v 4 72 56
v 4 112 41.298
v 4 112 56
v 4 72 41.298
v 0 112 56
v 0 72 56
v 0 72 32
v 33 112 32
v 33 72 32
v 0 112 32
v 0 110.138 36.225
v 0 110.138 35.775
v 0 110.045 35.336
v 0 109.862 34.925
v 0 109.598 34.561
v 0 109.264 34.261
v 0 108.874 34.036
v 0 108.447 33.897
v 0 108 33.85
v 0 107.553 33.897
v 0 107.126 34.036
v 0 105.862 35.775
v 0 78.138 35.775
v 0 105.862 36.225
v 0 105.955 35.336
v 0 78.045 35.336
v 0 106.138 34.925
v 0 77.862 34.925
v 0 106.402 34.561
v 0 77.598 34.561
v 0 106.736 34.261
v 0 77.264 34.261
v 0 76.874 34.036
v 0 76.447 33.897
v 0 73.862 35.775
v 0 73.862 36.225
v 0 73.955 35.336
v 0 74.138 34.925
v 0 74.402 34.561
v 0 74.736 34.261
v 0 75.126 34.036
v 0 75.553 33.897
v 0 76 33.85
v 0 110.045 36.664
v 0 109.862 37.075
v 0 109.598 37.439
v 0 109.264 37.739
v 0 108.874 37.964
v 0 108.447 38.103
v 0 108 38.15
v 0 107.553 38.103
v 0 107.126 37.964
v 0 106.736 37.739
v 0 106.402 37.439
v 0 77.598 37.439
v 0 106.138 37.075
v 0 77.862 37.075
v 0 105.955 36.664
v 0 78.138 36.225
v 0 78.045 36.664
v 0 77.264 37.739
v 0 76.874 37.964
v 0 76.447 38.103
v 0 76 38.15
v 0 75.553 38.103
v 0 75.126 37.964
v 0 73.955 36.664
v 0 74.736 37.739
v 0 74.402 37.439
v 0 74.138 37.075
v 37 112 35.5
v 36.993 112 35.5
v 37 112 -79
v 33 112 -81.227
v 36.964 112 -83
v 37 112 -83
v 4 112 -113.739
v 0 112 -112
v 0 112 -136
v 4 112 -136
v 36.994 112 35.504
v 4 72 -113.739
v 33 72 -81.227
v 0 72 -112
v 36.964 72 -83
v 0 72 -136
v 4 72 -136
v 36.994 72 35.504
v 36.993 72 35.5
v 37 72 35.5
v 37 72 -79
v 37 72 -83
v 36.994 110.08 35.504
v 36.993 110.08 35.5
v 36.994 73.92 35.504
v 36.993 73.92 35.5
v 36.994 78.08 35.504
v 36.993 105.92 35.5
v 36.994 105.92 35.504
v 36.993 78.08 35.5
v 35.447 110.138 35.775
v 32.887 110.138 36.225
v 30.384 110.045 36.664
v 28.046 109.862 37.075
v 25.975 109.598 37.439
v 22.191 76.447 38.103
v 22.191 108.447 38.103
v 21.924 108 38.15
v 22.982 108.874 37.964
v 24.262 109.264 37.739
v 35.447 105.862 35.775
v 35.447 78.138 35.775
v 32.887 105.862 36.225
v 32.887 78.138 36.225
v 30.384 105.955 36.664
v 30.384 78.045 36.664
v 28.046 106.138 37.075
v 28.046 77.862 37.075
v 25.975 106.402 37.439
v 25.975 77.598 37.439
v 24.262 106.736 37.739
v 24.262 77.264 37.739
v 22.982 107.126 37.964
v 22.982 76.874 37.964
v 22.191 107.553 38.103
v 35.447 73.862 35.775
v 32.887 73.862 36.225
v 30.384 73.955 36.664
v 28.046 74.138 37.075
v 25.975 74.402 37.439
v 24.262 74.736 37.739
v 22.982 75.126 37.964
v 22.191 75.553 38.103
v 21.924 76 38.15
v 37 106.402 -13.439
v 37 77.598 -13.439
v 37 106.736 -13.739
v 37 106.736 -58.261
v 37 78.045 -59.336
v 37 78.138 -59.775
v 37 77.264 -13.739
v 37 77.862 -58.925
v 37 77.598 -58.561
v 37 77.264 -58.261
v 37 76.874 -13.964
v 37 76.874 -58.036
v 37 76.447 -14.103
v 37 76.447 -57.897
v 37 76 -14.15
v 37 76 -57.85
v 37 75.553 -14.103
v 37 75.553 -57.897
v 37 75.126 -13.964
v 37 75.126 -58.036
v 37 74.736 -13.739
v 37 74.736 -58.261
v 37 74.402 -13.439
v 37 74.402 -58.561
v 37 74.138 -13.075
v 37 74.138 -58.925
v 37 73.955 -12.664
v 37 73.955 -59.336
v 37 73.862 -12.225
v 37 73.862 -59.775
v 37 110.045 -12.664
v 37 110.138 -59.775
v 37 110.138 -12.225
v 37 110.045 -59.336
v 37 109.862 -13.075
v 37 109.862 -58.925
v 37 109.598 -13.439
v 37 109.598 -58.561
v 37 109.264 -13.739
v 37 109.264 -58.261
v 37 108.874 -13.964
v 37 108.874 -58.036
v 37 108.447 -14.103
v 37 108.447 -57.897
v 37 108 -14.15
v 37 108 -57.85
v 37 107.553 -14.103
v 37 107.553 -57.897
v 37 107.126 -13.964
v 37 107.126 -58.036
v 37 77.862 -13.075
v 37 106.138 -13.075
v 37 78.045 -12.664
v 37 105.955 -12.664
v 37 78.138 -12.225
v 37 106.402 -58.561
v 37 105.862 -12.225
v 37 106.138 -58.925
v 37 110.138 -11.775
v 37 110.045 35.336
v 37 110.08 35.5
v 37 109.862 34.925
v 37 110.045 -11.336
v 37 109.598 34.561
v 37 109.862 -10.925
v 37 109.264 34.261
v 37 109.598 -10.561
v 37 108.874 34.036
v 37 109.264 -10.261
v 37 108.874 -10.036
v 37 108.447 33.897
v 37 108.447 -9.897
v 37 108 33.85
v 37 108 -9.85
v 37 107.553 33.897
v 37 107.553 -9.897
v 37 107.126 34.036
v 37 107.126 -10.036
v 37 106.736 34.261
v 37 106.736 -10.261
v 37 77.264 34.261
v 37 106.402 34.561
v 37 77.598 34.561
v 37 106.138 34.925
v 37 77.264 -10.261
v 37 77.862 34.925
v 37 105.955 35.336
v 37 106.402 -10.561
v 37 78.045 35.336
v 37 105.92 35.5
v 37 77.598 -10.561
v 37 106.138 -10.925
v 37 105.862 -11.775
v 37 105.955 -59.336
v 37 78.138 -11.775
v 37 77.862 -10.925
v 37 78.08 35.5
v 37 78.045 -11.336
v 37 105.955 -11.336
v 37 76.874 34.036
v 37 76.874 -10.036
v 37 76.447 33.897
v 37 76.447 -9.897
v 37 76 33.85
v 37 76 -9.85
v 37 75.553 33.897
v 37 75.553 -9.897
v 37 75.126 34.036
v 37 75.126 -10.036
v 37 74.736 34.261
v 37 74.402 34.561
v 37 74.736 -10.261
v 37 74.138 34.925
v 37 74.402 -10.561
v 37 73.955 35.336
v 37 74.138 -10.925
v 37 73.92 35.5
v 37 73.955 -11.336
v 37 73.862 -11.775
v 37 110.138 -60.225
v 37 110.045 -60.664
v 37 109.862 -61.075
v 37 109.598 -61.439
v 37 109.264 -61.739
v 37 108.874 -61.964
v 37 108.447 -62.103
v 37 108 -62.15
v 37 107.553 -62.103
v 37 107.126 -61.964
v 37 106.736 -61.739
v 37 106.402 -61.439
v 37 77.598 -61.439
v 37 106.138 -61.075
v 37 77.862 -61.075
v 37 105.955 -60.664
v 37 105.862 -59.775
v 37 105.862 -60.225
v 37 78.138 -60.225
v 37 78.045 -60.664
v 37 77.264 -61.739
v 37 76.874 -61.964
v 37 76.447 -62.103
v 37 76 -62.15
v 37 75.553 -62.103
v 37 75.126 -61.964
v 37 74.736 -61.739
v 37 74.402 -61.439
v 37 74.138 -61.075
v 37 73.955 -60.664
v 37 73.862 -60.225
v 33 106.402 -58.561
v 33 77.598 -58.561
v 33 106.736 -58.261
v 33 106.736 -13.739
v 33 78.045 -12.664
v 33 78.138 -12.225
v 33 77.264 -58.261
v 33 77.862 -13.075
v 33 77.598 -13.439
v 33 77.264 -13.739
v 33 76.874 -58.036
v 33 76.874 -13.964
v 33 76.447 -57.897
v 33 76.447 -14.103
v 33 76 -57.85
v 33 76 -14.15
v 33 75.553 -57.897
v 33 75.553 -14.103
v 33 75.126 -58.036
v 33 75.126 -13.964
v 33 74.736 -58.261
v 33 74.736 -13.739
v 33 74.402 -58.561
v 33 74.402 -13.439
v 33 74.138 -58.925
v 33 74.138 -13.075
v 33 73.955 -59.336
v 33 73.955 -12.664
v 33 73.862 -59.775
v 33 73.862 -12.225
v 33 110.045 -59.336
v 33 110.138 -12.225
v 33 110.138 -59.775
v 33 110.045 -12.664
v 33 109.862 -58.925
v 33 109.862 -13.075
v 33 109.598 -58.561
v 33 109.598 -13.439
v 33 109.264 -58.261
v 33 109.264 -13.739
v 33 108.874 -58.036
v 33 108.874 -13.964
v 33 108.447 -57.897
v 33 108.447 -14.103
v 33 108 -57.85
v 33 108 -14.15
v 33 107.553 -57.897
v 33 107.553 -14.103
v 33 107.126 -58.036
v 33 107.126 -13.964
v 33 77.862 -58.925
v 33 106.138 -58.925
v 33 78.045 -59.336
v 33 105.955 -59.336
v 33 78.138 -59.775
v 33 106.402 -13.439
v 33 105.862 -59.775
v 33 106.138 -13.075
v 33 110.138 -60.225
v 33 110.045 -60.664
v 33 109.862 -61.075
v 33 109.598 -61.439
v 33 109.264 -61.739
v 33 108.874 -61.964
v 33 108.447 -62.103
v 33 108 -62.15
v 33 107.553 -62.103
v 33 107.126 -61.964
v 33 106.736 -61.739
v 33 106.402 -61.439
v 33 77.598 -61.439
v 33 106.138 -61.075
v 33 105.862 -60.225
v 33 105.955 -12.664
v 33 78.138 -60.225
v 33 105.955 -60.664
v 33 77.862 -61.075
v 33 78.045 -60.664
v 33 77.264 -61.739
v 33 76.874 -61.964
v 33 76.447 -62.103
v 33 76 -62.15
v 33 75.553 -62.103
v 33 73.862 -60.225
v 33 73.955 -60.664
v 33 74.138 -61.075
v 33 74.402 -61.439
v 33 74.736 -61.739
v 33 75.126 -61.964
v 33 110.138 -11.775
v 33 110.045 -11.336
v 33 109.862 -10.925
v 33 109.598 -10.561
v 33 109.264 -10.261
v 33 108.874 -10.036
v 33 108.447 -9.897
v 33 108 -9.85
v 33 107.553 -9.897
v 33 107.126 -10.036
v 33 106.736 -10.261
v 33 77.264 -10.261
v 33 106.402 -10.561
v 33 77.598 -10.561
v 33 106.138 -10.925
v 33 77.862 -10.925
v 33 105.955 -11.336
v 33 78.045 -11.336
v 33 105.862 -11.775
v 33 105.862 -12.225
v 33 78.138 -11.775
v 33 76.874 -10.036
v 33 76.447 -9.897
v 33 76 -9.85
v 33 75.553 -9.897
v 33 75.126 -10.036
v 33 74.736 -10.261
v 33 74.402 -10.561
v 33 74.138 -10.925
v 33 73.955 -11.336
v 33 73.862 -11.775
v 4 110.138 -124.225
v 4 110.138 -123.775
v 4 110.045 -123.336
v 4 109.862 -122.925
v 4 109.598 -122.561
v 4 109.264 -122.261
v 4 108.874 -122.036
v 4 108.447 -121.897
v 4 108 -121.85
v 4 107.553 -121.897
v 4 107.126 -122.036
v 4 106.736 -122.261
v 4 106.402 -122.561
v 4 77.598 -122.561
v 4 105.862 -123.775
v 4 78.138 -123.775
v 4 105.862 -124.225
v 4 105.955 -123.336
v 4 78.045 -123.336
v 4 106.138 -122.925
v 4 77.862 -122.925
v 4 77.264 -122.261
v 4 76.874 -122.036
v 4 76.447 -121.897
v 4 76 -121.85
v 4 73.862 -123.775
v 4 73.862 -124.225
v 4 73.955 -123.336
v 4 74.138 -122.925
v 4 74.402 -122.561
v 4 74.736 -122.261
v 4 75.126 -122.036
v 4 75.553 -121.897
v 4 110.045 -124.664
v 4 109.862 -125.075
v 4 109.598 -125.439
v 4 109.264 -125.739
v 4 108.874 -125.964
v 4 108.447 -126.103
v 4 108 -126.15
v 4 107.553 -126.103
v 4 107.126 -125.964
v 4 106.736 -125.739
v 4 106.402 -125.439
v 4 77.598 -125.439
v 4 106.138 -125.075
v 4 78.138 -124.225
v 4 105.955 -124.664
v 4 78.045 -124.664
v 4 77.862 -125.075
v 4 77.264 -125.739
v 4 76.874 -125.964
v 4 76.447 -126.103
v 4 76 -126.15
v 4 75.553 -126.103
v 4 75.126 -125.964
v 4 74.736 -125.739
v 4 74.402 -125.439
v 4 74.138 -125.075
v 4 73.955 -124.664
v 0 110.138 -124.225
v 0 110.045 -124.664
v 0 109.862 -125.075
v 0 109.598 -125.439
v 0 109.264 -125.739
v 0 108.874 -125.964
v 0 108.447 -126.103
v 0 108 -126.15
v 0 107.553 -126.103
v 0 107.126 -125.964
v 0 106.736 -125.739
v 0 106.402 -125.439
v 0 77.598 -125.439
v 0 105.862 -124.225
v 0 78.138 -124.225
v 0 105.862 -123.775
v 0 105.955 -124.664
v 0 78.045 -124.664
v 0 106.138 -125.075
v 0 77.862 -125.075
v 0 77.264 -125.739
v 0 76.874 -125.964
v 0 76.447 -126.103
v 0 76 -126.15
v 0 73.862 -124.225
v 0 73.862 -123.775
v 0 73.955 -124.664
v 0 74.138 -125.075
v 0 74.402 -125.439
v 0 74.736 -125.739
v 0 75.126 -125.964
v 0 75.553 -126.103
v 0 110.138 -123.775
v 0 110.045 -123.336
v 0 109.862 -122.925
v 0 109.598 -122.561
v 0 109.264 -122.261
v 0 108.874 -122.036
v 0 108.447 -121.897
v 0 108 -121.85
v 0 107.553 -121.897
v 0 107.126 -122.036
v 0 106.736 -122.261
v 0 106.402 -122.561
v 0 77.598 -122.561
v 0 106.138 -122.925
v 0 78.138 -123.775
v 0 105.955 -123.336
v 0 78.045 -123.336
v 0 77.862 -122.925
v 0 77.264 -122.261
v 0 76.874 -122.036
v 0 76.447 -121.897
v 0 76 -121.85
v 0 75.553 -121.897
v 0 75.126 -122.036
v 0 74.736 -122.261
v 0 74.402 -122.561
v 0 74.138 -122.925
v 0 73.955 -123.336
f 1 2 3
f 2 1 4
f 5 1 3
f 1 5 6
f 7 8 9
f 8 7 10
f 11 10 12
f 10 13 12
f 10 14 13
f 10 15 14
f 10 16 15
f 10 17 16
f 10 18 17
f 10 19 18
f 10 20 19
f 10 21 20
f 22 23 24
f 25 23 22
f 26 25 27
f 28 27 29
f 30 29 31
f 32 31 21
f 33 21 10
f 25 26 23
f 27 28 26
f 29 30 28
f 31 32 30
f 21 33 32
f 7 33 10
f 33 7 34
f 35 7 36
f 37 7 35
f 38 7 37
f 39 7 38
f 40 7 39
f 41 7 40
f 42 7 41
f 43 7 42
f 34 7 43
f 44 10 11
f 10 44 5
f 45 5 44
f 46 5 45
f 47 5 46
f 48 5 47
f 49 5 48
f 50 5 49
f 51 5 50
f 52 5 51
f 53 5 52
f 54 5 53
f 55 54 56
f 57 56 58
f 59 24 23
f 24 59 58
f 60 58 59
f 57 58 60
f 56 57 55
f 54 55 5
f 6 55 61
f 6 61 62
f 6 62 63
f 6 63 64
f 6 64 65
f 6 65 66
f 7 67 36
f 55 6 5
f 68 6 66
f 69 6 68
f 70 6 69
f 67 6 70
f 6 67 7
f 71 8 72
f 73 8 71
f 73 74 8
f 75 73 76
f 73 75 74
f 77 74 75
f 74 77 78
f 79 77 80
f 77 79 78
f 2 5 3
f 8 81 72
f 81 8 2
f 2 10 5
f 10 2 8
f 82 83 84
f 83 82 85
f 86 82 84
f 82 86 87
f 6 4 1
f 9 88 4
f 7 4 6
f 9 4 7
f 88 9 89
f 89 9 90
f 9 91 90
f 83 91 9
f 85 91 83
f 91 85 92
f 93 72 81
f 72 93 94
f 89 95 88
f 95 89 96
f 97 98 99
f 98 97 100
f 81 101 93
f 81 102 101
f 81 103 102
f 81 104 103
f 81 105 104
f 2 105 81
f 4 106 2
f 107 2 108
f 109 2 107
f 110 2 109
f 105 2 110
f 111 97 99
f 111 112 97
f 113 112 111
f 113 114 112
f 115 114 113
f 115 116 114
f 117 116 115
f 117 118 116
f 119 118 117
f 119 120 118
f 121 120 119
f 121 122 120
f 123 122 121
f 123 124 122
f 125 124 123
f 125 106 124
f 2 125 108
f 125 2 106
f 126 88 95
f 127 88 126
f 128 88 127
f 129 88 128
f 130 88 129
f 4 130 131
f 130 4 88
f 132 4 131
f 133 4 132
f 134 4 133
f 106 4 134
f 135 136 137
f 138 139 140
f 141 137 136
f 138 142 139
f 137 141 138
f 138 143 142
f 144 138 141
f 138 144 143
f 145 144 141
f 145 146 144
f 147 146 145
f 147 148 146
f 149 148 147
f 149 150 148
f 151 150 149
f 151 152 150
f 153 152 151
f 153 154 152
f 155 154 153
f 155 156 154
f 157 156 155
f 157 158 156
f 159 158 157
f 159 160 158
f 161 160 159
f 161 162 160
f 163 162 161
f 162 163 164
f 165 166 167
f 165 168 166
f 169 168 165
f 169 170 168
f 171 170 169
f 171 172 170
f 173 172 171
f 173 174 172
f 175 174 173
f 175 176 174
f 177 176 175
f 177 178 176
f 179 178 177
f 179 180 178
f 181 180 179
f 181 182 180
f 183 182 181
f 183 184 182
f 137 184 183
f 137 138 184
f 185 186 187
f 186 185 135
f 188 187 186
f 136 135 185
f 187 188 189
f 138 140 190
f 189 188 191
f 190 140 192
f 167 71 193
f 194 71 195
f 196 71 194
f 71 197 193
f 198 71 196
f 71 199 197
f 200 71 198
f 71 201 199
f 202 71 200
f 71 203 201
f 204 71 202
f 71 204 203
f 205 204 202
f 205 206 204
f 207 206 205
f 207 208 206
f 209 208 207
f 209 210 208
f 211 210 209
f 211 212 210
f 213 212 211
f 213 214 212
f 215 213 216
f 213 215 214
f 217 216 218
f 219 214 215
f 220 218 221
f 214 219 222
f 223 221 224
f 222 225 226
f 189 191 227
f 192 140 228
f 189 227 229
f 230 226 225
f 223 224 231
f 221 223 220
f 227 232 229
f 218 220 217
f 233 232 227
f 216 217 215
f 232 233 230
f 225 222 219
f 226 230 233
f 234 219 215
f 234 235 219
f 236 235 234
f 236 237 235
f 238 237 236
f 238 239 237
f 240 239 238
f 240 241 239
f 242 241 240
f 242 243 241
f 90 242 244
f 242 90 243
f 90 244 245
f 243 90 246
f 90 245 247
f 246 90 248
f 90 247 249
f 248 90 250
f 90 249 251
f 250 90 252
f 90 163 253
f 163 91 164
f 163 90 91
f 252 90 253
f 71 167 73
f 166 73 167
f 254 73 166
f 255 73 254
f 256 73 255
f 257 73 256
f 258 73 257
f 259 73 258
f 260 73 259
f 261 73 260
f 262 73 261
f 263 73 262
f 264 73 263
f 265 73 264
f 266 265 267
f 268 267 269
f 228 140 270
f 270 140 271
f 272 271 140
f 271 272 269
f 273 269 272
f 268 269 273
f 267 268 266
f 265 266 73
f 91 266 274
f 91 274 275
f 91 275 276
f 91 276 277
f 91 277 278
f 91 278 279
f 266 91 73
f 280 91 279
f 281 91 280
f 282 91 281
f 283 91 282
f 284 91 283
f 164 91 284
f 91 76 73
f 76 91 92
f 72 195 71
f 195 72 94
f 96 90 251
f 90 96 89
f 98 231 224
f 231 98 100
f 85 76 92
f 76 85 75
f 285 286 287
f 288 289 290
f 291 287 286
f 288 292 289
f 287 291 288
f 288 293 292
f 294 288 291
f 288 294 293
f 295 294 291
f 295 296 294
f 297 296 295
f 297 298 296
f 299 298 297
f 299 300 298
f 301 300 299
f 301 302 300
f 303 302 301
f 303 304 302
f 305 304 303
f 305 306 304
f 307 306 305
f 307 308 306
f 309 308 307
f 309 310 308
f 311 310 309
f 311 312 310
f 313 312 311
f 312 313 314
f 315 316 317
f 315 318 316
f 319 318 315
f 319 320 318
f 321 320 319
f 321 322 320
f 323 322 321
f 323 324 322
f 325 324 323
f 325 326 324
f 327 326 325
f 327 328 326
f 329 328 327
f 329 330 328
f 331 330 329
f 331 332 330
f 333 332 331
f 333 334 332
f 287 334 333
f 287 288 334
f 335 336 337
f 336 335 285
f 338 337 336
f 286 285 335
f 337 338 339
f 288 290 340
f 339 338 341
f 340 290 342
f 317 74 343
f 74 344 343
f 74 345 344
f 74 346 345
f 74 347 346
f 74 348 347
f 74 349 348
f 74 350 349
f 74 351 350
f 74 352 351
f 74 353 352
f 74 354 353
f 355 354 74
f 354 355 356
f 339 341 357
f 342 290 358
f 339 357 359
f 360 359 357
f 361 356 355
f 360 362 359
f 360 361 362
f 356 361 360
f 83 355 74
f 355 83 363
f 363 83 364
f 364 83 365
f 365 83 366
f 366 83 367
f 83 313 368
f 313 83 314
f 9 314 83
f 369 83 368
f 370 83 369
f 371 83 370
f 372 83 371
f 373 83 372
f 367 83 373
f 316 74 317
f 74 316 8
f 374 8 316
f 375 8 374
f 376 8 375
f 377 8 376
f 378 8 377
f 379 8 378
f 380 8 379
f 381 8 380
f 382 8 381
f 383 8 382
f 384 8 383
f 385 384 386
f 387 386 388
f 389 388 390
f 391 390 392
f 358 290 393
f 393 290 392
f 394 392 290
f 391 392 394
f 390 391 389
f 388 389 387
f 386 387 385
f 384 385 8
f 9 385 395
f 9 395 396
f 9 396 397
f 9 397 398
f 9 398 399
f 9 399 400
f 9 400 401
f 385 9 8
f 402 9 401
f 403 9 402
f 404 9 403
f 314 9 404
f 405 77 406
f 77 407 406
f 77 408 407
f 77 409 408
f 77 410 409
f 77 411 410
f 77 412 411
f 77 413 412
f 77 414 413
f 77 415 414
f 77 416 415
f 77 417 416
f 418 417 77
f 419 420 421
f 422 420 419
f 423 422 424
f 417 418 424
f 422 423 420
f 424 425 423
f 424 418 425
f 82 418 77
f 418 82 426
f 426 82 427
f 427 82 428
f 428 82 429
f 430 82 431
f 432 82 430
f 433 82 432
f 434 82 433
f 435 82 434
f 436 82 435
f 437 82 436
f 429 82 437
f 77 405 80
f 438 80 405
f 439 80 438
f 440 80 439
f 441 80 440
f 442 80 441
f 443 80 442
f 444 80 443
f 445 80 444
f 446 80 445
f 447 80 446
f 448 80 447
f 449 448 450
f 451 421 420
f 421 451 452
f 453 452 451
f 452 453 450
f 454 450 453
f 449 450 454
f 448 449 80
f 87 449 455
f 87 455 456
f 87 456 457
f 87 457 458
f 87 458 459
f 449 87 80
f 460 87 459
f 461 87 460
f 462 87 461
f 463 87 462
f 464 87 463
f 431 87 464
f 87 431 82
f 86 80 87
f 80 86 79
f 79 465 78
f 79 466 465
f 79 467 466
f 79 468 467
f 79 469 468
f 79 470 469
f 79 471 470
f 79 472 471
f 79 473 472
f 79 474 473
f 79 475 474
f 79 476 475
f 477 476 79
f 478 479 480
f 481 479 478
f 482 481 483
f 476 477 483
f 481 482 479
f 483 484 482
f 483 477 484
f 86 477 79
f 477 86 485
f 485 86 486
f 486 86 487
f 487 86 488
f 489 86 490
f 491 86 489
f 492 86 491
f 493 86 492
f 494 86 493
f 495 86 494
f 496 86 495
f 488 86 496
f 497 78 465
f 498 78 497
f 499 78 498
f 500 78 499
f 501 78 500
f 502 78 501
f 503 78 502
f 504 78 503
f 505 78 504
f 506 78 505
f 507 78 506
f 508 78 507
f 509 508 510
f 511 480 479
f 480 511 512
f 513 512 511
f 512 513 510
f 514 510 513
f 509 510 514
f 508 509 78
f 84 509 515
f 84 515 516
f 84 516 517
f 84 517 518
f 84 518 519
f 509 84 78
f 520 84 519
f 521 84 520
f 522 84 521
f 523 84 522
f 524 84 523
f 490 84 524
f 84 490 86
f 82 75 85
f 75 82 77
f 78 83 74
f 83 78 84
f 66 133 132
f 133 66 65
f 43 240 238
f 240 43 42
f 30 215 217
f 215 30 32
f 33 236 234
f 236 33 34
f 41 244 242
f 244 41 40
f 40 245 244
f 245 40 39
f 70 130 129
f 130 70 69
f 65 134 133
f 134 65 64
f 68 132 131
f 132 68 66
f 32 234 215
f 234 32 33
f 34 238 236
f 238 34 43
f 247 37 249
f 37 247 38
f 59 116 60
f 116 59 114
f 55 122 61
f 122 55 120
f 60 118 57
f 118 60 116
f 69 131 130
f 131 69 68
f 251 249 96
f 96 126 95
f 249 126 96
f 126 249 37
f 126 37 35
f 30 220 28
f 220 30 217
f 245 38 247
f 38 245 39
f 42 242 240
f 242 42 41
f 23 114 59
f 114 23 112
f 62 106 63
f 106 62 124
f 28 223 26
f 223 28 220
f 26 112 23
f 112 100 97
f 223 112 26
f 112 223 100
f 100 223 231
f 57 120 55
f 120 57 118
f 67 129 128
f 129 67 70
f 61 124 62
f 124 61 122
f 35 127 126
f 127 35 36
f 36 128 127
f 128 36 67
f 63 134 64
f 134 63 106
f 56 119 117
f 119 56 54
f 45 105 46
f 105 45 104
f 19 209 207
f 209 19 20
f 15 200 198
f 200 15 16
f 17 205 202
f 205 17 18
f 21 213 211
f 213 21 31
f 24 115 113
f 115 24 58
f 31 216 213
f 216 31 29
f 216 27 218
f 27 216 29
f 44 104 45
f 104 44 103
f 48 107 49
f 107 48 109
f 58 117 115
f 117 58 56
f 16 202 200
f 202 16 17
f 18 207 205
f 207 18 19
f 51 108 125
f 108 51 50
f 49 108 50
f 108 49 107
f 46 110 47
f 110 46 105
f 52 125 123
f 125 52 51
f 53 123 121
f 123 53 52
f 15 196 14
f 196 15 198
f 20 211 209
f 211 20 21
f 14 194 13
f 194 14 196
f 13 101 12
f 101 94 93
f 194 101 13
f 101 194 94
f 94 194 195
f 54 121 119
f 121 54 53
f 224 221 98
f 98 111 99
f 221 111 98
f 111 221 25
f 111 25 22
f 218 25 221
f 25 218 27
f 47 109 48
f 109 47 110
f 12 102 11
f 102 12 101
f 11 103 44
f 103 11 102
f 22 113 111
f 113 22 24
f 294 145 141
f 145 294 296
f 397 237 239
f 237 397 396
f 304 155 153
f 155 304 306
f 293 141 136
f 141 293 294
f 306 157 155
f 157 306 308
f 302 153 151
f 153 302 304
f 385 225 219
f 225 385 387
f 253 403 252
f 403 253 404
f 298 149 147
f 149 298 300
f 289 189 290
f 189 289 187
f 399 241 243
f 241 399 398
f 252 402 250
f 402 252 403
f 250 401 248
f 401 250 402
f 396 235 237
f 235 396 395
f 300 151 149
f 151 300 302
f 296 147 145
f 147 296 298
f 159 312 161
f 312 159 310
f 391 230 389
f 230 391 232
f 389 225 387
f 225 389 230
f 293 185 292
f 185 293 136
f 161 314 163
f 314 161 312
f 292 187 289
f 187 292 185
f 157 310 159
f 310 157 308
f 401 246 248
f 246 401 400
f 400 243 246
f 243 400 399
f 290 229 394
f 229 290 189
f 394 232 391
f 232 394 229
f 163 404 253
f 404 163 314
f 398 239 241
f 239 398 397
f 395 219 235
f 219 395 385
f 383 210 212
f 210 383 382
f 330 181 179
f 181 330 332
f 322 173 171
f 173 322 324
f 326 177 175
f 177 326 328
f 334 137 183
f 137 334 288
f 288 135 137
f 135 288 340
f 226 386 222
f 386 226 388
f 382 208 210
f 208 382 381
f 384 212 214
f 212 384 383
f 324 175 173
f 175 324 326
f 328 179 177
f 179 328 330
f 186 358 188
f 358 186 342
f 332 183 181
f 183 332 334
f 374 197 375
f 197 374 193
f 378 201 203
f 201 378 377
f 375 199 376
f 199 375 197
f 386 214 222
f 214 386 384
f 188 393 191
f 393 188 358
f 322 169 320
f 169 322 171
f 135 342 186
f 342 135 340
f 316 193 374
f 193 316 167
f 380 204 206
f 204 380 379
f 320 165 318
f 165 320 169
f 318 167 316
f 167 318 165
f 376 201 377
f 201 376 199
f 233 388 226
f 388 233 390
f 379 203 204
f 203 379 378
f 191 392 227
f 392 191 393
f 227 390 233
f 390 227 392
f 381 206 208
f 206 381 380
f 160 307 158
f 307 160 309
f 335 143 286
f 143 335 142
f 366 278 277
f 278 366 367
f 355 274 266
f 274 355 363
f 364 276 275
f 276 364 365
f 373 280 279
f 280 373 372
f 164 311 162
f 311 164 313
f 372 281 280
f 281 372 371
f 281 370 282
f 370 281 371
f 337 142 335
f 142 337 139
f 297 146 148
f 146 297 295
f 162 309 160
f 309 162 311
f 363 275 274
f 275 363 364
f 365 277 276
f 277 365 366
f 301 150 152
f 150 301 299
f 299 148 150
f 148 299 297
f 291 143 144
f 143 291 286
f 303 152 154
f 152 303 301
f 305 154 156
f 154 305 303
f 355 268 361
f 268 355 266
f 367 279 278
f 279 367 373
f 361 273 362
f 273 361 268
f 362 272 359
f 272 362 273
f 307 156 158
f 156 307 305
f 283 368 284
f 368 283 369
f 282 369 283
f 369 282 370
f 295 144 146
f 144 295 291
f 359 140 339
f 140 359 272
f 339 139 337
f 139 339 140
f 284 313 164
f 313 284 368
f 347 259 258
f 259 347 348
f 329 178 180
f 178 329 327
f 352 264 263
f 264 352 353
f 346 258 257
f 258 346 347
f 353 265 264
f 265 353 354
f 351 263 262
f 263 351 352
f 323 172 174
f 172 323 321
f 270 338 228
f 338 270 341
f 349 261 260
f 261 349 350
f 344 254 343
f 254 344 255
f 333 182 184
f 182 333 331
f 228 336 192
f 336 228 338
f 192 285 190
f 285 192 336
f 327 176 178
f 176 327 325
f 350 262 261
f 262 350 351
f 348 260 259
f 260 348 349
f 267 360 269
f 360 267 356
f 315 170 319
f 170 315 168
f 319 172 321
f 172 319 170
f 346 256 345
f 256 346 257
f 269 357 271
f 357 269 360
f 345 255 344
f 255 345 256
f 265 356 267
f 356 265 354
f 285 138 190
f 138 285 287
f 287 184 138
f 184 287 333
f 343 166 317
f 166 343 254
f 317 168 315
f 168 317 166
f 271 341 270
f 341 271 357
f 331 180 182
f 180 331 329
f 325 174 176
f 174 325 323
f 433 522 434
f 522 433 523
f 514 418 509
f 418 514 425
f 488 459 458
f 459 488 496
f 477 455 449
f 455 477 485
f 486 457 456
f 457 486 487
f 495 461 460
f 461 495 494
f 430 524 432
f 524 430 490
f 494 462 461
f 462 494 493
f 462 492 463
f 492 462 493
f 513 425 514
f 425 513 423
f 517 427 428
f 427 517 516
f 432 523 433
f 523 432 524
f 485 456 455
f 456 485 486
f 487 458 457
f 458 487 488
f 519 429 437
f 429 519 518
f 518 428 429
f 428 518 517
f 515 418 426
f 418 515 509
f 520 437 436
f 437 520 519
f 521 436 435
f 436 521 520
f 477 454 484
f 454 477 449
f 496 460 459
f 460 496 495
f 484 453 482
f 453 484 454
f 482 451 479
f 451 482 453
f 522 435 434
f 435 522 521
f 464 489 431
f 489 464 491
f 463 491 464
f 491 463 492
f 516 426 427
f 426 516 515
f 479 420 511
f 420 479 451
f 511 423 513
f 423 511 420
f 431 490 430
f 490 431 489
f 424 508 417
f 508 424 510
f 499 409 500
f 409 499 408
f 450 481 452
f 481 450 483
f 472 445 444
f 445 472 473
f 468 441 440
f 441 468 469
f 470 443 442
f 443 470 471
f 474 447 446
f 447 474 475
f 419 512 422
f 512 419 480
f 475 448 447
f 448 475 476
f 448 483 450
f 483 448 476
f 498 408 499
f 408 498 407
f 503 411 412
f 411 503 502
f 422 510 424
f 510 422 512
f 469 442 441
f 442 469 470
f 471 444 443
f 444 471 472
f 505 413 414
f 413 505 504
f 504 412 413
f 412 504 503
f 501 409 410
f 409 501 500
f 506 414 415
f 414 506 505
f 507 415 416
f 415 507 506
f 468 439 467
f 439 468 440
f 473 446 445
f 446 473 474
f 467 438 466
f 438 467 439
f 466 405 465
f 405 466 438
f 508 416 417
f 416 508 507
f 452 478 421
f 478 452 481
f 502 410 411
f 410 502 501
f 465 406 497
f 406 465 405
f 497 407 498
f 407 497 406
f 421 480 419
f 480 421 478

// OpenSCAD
// chimney piece
difference() {
union() {
    // top harness
    translate([0,72,32])
    cube([4,40,24]);
    
    // angled piece
    translate([0,72,42])
    rotate([0,99.96,0])
    cube([4,40,37.56]);
    
    // bottom of angled piece
    translate([0,72,32])
    cube([34,40,4]);
    
    translate([0,72,35])
    cube([15,40,3.5]);
    
    // middle part
    translate([33,72,-83])
    cube([4,40,118.5]);
    
    // bottom harness
    translate([0,72,-136])
    cube([4,40,24]);
    
    translate([0,72,-112])
    rotate([0,47,0])
    cube([4,40,47]);
}
    // top holes left and right
    translate([-4,76,36])
    rotate([0,90,0])
    cylinder(r=2.15,60, $fn=30);

    translate([-4,108,36])
    rotate([0,90,0])
    cylinder(r=2.15,60, $fn=30);
    
    // holes for attaching guard rail
    // top left
    translate([-4,76,-12])
    rotate([0,90,0])
    cylinder(r=2.15,90, $fn=30);

    // top right
    translate([-4,108,-12])
    rotate([0,90,0])
    cylinder(r=2.15,90, $fn=30);
    
    // bottom left
    translate([-4,76,-60])
    rotate([0,90,0])
    cylinder(r=2.15,90, $fn=30);

    // bottom right
    translate([-4,108,-60])
    rotate([0,90,0])
    cylinder(r=2.15,90, $fn=30);
    
    // bottom holes on harness left and right
    translate([-4,76,-124])
    rotate([0,90,0])
    cylinder(r=2.15,60, $fn=30);

    translate([-4,108,-124])
    rotate([0,90,0])
    cylinder(r=2.15,60, $fn=30);
    
    // clean up back
    translate([-10,0,0])
    cube([10,150,90]);
    
    // clean up front slightly
    translate([37,60,-85])
    cube([5,60,6]);
    
}
